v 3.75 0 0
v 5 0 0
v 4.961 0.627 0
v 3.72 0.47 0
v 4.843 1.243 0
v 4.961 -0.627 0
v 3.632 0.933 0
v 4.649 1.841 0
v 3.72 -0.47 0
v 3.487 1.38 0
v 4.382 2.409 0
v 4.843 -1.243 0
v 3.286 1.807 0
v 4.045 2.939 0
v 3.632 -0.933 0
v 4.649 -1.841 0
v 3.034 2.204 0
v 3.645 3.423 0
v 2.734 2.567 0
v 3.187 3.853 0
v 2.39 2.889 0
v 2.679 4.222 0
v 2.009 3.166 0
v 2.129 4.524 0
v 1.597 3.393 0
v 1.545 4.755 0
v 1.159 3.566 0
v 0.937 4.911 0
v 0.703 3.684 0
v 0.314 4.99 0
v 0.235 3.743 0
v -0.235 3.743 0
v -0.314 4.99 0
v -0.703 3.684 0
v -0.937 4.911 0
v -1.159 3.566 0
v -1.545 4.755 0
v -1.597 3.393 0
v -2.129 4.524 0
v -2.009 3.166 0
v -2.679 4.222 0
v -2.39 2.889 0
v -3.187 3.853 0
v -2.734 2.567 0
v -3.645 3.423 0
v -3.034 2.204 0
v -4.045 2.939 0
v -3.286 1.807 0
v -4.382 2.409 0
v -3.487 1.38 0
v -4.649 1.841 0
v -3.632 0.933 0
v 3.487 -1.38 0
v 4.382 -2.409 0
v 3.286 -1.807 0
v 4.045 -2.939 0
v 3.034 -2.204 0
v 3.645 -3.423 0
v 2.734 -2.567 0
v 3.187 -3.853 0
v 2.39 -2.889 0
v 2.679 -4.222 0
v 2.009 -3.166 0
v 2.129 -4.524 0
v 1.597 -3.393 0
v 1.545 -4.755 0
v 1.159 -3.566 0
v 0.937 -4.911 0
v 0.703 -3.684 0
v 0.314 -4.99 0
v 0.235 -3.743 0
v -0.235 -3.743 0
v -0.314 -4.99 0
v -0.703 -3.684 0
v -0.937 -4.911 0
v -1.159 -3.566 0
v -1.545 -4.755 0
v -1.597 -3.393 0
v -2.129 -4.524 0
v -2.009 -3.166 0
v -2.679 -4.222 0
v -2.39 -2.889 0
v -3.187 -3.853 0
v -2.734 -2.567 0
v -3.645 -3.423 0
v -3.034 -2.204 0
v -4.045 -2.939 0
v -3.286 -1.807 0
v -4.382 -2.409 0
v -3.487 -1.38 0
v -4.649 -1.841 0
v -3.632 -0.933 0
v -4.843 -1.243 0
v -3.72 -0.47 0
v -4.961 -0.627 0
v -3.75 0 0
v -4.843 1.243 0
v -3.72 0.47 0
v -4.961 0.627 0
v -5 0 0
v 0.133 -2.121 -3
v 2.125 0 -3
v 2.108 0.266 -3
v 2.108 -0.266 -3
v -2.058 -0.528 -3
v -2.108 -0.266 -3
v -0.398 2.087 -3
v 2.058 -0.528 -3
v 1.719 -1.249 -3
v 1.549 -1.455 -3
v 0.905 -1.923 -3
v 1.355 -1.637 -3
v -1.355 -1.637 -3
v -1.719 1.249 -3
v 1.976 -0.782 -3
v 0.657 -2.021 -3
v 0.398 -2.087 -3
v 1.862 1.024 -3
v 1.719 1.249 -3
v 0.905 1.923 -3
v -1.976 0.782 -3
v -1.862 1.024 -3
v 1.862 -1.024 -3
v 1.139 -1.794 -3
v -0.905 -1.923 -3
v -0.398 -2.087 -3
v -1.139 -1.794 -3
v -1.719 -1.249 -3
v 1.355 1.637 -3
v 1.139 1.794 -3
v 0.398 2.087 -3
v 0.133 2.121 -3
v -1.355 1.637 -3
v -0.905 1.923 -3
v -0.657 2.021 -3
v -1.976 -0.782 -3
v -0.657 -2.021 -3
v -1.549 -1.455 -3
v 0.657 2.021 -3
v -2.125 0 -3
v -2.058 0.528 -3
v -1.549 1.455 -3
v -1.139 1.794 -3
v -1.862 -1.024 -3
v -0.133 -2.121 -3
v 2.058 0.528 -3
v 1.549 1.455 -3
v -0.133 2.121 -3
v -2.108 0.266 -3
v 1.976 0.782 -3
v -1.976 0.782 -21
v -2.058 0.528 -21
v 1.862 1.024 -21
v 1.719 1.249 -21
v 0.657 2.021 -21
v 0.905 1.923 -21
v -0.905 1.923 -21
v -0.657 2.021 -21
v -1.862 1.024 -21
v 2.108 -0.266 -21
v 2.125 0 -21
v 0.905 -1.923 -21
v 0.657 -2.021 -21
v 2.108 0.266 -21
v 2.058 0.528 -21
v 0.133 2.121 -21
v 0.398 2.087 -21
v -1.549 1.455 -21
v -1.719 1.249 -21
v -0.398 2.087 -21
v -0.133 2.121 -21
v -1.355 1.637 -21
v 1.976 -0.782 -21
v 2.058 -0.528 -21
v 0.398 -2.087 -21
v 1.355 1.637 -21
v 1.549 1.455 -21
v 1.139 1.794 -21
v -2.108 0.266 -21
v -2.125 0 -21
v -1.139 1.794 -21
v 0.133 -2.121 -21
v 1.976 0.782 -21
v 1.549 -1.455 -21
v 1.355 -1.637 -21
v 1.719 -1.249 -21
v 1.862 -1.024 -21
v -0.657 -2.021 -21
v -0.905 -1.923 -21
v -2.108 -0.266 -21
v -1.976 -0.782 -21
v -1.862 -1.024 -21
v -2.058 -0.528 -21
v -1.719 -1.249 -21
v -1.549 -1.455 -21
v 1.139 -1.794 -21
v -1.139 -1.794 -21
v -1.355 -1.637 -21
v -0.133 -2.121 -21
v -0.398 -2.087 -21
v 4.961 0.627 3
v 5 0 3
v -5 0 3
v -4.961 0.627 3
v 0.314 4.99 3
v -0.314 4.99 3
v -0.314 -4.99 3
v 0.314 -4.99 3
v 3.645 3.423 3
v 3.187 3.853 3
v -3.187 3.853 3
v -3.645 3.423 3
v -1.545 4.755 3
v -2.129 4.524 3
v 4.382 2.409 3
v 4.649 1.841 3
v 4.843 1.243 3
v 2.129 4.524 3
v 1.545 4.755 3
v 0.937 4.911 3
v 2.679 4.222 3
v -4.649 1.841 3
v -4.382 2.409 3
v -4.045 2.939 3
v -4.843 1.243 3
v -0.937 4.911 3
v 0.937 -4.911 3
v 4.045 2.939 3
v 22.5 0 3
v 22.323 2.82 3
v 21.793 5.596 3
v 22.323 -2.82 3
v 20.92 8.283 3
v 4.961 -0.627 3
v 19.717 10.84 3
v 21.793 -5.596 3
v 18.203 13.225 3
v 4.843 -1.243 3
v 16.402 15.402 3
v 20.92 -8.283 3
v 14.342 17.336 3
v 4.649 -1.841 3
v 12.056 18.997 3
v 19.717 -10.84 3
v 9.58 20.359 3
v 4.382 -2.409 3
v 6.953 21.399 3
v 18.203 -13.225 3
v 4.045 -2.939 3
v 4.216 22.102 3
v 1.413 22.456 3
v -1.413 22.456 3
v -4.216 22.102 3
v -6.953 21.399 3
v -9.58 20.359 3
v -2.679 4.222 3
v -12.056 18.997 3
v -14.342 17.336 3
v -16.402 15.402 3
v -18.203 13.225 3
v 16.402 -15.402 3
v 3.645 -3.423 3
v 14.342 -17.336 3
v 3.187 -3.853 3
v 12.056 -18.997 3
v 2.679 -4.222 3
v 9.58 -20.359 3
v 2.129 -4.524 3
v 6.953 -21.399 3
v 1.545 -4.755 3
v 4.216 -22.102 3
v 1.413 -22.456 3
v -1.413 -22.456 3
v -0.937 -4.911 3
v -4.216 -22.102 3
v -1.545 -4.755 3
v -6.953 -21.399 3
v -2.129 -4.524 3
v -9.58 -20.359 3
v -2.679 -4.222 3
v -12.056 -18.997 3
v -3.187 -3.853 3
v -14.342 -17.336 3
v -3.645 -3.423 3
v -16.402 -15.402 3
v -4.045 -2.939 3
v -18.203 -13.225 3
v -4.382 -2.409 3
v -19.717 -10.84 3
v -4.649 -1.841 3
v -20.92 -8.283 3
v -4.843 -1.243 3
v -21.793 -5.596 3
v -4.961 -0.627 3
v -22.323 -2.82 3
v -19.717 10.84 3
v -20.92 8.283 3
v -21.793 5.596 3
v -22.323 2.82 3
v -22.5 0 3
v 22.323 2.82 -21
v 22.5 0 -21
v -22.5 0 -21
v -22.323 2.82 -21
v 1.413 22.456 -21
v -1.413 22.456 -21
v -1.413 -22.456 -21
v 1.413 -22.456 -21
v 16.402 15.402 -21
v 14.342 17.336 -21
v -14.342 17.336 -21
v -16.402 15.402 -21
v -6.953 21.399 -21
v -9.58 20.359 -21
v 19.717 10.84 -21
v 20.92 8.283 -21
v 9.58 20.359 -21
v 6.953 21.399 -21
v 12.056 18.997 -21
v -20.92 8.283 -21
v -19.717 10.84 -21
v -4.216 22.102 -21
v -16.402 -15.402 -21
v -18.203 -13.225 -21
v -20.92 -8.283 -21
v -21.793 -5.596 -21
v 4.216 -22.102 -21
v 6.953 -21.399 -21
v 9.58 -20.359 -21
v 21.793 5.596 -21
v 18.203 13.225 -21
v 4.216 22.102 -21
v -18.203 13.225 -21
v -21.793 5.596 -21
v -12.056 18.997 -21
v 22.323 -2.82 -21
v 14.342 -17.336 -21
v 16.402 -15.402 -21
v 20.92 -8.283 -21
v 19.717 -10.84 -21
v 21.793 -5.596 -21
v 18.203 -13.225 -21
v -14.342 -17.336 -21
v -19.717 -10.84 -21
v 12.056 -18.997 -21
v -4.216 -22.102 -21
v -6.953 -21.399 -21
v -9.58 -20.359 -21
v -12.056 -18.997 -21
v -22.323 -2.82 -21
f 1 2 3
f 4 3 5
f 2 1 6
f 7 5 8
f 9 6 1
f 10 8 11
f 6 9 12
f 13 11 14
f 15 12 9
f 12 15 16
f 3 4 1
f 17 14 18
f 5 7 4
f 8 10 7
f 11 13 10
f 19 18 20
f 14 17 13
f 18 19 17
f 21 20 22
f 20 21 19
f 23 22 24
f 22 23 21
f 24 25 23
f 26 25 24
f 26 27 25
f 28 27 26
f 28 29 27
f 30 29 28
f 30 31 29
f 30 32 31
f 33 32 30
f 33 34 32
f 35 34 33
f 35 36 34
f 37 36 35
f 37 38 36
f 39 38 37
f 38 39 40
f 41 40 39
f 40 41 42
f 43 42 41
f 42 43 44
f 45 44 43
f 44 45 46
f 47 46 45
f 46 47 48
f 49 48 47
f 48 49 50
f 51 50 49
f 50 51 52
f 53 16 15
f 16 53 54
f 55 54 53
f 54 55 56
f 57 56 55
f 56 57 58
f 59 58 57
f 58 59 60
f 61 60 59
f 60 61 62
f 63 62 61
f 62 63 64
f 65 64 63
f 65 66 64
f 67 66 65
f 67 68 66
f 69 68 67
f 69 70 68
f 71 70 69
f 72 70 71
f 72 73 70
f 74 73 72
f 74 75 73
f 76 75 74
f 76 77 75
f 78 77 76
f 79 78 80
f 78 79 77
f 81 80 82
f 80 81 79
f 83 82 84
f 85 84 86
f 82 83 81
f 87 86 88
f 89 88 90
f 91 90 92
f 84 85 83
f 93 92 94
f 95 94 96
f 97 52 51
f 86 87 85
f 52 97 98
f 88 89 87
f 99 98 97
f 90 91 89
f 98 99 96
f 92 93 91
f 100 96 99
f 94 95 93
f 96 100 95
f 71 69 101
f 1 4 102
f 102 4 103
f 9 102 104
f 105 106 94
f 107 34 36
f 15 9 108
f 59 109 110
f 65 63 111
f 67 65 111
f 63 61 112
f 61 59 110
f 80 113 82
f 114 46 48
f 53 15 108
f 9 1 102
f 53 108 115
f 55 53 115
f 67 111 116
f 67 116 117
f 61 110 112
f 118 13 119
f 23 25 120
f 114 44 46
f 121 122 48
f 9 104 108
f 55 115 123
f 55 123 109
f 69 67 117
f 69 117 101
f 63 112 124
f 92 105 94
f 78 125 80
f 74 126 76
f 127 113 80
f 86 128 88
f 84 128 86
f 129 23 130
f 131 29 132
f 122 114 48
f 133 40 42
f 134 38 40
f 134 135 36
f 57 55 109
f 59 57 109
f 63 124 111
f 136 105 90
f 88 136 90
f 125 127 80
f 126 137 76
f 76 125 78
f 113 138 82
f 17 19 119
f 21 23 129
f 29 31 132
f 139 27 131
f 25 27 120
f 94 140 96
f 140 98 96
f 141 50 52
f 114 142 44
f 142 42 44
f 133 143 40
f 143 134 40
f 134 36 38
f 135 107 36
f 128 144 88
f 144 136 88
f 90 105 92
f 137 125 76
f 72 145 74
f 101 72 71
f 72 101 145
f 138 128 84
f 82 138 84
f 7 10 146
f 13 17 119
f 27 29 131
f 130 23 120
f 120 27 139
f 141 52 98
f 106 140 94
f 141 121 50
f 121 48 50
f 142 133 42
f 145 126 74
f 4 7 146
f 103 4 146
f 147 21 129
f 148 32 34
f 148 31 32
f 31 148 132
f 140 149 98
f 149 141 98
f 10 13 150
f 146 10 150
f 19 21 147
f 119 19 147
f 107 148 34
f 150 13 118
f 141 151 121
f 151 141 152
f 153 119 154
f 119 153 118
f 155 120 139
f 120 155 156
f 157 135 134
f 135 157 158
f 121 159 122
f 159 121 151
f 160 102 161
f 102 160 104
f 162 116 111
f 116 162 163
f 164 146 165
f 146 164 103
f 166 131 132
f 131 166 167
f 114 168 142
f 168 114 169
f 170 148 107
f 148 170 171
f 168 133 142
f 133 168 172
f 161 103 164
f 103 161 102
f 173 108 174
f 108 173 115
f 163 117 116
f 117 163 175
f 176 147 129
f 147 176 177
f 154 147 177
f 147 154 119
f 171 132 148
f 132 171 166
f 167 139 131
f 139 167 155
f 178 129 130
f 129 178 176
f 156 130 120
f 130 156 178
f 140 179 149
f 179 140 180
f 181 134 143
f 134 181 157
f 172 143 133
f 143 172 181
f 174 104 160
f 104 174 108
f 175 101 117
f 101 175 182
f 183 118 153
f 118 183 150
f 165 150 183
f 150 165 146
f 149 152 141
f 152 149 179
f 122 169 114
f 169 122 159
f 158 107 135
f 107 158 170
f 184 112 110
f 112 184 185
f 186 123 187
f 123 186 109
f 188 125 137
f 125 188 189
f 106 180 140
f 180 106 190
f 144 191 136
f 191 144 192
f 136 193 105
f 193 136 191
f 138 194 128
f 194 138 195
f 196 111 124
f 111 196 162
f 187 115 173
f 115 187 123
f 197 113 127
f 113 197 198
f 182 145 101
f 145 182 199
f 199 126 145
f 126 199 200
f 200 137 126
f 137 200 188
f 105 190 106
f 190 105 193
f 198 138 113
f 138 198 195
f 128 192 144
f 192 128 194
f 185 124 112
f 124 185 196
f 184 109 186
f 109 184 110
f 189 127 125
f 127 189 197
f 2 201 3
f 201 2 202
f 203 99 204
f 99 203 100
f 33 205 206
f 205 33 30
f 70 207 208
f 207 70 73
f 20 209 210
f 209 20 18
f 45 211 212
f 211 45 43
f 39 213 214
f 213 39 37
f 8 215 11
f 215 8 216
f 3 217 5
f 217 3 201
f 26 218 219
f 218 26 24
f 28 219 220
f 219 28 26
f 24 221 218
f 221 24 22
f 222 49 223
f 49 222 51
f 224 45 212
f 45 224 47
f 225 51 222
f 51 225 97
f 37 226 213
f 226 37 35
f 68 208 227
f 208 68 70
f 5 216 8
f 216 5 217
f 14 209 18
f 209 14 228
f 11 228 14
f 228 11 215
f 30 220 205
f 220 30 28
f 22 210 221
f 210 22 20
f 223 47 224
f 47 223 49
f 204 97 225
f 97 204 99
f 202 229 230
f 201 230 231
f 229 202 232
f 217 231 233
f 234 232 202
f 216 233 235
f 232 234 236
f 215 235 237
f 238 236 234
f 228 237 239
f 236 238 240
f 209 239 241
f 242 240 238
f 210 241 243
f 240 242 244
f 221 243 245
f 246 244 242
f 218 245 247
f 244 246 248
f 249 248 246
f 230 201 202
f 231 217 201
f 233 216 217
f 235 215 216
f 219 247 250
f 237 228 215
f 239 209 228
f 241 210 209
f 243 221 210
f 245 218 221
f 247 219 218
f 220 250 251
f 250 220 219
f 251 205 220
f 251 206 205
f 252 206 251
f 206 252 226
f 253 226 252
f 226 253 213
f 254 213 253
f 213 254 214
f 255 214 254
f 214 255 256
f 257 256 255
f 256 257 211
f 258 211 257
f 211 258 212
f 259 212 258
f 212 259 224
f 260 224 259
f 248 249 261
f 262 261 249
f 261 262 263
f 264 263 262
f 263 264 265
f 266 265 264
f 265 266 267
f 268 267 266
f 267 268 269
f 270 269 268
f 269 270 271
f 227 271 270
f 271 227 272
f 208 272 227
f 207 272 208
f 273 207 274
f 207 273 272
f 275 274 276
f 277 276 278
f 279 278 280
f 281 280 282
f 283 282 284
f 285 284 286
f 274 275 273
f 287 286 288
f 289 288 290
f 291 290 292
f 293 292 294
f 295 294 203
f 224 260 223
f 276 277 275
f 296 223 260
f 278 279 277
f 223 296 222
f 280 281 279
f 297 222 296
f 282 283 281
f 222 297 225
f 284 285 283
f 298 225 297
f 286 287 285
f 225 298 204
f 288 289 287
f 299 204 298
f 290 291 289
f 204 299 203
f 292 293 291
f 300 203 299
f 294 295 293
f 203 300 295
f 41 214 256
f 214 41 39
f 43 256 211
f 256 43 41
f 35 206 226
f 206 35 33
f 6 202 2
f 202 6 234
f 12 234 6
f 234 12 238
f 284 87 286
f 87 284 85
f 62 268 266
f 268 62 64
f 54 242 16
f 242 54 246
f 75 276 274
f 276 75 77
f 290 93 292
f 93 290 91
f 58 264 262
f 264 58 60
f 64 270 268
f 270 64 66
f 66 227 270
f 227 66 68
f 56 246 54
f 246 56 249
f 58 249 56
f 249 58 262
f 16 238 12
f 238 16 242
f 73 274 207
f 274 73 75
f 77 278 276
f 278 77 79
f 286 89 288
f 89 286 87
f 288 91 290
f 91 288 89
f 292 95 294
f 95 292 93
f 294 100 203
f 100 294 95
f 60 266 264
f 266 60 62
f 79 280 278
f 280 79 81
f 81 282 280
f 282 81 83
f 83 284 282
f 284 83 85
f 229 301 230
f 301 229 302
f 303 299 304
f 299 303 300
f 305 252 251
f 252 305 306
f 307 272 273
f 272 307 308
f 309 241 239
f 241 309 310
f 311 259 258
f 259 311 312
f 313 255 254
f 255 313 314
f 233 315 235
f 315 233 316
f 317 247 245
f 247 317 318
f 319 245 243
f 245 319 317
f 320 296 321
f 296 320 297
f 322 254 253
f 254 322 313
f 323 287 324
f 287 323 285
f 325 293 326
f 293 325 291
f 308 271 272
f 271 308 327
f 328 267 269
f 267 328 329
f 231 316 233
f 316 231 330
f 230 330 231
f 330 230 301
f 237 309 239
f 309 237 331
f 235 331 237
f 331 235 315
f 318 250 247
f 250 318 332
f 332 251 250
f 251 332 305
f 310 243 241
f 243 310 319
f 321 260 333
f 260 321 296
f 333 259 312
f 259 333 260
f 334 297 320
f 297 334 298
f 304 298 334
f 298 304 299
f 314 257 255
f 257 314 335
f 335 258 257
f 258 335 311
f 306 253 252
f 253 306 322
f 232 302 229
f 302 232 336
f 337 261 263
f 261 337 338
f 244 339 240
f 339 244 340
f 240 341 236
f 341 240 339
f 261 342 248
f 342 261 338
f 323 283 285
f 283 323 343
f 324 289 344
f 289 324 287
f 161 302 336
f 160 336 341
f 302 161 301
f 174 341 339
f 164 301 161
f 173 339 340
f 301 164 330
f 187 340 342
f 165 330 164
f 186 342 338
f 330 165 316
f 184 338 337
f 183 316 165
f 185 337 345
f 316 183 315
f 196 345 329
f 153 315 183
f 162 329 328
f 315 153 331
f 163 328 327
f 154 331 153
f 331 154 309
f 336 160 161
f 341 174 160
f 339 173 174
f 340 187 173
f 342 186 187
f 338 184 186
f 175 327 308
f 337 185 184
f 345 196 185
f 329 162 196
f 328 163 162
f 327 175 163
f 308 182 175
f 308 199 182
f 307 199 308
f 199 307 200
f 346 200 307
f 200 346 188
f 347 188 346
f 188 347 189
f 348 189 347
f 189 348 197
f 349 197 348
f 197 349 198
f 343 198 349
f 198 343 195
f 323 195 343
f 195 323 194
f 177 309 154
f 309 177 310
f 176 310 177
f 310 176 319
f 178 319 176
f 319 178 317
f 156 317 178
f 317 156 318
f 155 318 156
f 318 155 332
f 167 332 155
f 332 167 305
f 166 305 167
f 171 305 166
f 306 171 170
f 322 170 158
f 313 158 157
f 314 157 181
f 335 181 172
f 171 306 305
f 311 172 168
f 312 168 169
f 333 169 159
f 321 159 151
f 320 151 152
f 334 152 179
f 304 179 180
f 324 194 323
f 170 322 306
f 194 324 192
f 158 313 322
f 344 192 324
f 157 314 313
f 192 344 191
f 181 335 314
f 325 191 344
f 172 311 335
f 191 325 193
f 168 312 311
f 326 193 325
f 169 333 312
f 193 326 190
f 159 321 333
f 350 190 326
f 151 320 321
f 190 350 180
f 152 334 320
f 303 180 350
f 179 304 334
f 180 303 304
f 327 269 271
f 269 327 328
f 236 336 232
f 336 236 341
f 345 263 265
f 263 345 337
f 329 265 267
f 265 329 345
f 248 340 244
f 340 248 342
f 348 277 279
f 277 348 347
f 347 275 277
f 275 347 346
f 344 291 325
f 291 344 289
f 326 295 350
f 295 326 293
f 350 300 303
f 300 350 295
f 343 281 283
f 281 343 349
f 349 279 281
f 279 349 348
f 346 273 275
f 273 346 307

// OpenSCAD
$fn = 50;

difference() {
	union() {
		translate(v = [0, 0, -21.0]) {
			cylinder(h = 24, r = 22.5);
		}
	}
	union() {
		translate(v = [0, 0, 0]) {
			rotate(a = [0, 0, 0]) {
				difference() {
					union() {
						translate(v = [0, 0, -24.0]) {
							cylinder(h = 24, r = 2.0);
						}
						translate(v = [0, 0, -3]) {
							cylinder(h = 3, r1 = 2.125, r2 = 3.75);
						}
						translate(v = [0, 0, -24.0]) {
							cylinder(h = 24, r = 2.125);
						}
						translate(v = [0, 0, -24.0]) {
							cylinder(h = 24, r = 2.0);
						}
					}
					union();
				}
			}
		}
		#cylinder(h = 3, r = 5.0);
	}
}
